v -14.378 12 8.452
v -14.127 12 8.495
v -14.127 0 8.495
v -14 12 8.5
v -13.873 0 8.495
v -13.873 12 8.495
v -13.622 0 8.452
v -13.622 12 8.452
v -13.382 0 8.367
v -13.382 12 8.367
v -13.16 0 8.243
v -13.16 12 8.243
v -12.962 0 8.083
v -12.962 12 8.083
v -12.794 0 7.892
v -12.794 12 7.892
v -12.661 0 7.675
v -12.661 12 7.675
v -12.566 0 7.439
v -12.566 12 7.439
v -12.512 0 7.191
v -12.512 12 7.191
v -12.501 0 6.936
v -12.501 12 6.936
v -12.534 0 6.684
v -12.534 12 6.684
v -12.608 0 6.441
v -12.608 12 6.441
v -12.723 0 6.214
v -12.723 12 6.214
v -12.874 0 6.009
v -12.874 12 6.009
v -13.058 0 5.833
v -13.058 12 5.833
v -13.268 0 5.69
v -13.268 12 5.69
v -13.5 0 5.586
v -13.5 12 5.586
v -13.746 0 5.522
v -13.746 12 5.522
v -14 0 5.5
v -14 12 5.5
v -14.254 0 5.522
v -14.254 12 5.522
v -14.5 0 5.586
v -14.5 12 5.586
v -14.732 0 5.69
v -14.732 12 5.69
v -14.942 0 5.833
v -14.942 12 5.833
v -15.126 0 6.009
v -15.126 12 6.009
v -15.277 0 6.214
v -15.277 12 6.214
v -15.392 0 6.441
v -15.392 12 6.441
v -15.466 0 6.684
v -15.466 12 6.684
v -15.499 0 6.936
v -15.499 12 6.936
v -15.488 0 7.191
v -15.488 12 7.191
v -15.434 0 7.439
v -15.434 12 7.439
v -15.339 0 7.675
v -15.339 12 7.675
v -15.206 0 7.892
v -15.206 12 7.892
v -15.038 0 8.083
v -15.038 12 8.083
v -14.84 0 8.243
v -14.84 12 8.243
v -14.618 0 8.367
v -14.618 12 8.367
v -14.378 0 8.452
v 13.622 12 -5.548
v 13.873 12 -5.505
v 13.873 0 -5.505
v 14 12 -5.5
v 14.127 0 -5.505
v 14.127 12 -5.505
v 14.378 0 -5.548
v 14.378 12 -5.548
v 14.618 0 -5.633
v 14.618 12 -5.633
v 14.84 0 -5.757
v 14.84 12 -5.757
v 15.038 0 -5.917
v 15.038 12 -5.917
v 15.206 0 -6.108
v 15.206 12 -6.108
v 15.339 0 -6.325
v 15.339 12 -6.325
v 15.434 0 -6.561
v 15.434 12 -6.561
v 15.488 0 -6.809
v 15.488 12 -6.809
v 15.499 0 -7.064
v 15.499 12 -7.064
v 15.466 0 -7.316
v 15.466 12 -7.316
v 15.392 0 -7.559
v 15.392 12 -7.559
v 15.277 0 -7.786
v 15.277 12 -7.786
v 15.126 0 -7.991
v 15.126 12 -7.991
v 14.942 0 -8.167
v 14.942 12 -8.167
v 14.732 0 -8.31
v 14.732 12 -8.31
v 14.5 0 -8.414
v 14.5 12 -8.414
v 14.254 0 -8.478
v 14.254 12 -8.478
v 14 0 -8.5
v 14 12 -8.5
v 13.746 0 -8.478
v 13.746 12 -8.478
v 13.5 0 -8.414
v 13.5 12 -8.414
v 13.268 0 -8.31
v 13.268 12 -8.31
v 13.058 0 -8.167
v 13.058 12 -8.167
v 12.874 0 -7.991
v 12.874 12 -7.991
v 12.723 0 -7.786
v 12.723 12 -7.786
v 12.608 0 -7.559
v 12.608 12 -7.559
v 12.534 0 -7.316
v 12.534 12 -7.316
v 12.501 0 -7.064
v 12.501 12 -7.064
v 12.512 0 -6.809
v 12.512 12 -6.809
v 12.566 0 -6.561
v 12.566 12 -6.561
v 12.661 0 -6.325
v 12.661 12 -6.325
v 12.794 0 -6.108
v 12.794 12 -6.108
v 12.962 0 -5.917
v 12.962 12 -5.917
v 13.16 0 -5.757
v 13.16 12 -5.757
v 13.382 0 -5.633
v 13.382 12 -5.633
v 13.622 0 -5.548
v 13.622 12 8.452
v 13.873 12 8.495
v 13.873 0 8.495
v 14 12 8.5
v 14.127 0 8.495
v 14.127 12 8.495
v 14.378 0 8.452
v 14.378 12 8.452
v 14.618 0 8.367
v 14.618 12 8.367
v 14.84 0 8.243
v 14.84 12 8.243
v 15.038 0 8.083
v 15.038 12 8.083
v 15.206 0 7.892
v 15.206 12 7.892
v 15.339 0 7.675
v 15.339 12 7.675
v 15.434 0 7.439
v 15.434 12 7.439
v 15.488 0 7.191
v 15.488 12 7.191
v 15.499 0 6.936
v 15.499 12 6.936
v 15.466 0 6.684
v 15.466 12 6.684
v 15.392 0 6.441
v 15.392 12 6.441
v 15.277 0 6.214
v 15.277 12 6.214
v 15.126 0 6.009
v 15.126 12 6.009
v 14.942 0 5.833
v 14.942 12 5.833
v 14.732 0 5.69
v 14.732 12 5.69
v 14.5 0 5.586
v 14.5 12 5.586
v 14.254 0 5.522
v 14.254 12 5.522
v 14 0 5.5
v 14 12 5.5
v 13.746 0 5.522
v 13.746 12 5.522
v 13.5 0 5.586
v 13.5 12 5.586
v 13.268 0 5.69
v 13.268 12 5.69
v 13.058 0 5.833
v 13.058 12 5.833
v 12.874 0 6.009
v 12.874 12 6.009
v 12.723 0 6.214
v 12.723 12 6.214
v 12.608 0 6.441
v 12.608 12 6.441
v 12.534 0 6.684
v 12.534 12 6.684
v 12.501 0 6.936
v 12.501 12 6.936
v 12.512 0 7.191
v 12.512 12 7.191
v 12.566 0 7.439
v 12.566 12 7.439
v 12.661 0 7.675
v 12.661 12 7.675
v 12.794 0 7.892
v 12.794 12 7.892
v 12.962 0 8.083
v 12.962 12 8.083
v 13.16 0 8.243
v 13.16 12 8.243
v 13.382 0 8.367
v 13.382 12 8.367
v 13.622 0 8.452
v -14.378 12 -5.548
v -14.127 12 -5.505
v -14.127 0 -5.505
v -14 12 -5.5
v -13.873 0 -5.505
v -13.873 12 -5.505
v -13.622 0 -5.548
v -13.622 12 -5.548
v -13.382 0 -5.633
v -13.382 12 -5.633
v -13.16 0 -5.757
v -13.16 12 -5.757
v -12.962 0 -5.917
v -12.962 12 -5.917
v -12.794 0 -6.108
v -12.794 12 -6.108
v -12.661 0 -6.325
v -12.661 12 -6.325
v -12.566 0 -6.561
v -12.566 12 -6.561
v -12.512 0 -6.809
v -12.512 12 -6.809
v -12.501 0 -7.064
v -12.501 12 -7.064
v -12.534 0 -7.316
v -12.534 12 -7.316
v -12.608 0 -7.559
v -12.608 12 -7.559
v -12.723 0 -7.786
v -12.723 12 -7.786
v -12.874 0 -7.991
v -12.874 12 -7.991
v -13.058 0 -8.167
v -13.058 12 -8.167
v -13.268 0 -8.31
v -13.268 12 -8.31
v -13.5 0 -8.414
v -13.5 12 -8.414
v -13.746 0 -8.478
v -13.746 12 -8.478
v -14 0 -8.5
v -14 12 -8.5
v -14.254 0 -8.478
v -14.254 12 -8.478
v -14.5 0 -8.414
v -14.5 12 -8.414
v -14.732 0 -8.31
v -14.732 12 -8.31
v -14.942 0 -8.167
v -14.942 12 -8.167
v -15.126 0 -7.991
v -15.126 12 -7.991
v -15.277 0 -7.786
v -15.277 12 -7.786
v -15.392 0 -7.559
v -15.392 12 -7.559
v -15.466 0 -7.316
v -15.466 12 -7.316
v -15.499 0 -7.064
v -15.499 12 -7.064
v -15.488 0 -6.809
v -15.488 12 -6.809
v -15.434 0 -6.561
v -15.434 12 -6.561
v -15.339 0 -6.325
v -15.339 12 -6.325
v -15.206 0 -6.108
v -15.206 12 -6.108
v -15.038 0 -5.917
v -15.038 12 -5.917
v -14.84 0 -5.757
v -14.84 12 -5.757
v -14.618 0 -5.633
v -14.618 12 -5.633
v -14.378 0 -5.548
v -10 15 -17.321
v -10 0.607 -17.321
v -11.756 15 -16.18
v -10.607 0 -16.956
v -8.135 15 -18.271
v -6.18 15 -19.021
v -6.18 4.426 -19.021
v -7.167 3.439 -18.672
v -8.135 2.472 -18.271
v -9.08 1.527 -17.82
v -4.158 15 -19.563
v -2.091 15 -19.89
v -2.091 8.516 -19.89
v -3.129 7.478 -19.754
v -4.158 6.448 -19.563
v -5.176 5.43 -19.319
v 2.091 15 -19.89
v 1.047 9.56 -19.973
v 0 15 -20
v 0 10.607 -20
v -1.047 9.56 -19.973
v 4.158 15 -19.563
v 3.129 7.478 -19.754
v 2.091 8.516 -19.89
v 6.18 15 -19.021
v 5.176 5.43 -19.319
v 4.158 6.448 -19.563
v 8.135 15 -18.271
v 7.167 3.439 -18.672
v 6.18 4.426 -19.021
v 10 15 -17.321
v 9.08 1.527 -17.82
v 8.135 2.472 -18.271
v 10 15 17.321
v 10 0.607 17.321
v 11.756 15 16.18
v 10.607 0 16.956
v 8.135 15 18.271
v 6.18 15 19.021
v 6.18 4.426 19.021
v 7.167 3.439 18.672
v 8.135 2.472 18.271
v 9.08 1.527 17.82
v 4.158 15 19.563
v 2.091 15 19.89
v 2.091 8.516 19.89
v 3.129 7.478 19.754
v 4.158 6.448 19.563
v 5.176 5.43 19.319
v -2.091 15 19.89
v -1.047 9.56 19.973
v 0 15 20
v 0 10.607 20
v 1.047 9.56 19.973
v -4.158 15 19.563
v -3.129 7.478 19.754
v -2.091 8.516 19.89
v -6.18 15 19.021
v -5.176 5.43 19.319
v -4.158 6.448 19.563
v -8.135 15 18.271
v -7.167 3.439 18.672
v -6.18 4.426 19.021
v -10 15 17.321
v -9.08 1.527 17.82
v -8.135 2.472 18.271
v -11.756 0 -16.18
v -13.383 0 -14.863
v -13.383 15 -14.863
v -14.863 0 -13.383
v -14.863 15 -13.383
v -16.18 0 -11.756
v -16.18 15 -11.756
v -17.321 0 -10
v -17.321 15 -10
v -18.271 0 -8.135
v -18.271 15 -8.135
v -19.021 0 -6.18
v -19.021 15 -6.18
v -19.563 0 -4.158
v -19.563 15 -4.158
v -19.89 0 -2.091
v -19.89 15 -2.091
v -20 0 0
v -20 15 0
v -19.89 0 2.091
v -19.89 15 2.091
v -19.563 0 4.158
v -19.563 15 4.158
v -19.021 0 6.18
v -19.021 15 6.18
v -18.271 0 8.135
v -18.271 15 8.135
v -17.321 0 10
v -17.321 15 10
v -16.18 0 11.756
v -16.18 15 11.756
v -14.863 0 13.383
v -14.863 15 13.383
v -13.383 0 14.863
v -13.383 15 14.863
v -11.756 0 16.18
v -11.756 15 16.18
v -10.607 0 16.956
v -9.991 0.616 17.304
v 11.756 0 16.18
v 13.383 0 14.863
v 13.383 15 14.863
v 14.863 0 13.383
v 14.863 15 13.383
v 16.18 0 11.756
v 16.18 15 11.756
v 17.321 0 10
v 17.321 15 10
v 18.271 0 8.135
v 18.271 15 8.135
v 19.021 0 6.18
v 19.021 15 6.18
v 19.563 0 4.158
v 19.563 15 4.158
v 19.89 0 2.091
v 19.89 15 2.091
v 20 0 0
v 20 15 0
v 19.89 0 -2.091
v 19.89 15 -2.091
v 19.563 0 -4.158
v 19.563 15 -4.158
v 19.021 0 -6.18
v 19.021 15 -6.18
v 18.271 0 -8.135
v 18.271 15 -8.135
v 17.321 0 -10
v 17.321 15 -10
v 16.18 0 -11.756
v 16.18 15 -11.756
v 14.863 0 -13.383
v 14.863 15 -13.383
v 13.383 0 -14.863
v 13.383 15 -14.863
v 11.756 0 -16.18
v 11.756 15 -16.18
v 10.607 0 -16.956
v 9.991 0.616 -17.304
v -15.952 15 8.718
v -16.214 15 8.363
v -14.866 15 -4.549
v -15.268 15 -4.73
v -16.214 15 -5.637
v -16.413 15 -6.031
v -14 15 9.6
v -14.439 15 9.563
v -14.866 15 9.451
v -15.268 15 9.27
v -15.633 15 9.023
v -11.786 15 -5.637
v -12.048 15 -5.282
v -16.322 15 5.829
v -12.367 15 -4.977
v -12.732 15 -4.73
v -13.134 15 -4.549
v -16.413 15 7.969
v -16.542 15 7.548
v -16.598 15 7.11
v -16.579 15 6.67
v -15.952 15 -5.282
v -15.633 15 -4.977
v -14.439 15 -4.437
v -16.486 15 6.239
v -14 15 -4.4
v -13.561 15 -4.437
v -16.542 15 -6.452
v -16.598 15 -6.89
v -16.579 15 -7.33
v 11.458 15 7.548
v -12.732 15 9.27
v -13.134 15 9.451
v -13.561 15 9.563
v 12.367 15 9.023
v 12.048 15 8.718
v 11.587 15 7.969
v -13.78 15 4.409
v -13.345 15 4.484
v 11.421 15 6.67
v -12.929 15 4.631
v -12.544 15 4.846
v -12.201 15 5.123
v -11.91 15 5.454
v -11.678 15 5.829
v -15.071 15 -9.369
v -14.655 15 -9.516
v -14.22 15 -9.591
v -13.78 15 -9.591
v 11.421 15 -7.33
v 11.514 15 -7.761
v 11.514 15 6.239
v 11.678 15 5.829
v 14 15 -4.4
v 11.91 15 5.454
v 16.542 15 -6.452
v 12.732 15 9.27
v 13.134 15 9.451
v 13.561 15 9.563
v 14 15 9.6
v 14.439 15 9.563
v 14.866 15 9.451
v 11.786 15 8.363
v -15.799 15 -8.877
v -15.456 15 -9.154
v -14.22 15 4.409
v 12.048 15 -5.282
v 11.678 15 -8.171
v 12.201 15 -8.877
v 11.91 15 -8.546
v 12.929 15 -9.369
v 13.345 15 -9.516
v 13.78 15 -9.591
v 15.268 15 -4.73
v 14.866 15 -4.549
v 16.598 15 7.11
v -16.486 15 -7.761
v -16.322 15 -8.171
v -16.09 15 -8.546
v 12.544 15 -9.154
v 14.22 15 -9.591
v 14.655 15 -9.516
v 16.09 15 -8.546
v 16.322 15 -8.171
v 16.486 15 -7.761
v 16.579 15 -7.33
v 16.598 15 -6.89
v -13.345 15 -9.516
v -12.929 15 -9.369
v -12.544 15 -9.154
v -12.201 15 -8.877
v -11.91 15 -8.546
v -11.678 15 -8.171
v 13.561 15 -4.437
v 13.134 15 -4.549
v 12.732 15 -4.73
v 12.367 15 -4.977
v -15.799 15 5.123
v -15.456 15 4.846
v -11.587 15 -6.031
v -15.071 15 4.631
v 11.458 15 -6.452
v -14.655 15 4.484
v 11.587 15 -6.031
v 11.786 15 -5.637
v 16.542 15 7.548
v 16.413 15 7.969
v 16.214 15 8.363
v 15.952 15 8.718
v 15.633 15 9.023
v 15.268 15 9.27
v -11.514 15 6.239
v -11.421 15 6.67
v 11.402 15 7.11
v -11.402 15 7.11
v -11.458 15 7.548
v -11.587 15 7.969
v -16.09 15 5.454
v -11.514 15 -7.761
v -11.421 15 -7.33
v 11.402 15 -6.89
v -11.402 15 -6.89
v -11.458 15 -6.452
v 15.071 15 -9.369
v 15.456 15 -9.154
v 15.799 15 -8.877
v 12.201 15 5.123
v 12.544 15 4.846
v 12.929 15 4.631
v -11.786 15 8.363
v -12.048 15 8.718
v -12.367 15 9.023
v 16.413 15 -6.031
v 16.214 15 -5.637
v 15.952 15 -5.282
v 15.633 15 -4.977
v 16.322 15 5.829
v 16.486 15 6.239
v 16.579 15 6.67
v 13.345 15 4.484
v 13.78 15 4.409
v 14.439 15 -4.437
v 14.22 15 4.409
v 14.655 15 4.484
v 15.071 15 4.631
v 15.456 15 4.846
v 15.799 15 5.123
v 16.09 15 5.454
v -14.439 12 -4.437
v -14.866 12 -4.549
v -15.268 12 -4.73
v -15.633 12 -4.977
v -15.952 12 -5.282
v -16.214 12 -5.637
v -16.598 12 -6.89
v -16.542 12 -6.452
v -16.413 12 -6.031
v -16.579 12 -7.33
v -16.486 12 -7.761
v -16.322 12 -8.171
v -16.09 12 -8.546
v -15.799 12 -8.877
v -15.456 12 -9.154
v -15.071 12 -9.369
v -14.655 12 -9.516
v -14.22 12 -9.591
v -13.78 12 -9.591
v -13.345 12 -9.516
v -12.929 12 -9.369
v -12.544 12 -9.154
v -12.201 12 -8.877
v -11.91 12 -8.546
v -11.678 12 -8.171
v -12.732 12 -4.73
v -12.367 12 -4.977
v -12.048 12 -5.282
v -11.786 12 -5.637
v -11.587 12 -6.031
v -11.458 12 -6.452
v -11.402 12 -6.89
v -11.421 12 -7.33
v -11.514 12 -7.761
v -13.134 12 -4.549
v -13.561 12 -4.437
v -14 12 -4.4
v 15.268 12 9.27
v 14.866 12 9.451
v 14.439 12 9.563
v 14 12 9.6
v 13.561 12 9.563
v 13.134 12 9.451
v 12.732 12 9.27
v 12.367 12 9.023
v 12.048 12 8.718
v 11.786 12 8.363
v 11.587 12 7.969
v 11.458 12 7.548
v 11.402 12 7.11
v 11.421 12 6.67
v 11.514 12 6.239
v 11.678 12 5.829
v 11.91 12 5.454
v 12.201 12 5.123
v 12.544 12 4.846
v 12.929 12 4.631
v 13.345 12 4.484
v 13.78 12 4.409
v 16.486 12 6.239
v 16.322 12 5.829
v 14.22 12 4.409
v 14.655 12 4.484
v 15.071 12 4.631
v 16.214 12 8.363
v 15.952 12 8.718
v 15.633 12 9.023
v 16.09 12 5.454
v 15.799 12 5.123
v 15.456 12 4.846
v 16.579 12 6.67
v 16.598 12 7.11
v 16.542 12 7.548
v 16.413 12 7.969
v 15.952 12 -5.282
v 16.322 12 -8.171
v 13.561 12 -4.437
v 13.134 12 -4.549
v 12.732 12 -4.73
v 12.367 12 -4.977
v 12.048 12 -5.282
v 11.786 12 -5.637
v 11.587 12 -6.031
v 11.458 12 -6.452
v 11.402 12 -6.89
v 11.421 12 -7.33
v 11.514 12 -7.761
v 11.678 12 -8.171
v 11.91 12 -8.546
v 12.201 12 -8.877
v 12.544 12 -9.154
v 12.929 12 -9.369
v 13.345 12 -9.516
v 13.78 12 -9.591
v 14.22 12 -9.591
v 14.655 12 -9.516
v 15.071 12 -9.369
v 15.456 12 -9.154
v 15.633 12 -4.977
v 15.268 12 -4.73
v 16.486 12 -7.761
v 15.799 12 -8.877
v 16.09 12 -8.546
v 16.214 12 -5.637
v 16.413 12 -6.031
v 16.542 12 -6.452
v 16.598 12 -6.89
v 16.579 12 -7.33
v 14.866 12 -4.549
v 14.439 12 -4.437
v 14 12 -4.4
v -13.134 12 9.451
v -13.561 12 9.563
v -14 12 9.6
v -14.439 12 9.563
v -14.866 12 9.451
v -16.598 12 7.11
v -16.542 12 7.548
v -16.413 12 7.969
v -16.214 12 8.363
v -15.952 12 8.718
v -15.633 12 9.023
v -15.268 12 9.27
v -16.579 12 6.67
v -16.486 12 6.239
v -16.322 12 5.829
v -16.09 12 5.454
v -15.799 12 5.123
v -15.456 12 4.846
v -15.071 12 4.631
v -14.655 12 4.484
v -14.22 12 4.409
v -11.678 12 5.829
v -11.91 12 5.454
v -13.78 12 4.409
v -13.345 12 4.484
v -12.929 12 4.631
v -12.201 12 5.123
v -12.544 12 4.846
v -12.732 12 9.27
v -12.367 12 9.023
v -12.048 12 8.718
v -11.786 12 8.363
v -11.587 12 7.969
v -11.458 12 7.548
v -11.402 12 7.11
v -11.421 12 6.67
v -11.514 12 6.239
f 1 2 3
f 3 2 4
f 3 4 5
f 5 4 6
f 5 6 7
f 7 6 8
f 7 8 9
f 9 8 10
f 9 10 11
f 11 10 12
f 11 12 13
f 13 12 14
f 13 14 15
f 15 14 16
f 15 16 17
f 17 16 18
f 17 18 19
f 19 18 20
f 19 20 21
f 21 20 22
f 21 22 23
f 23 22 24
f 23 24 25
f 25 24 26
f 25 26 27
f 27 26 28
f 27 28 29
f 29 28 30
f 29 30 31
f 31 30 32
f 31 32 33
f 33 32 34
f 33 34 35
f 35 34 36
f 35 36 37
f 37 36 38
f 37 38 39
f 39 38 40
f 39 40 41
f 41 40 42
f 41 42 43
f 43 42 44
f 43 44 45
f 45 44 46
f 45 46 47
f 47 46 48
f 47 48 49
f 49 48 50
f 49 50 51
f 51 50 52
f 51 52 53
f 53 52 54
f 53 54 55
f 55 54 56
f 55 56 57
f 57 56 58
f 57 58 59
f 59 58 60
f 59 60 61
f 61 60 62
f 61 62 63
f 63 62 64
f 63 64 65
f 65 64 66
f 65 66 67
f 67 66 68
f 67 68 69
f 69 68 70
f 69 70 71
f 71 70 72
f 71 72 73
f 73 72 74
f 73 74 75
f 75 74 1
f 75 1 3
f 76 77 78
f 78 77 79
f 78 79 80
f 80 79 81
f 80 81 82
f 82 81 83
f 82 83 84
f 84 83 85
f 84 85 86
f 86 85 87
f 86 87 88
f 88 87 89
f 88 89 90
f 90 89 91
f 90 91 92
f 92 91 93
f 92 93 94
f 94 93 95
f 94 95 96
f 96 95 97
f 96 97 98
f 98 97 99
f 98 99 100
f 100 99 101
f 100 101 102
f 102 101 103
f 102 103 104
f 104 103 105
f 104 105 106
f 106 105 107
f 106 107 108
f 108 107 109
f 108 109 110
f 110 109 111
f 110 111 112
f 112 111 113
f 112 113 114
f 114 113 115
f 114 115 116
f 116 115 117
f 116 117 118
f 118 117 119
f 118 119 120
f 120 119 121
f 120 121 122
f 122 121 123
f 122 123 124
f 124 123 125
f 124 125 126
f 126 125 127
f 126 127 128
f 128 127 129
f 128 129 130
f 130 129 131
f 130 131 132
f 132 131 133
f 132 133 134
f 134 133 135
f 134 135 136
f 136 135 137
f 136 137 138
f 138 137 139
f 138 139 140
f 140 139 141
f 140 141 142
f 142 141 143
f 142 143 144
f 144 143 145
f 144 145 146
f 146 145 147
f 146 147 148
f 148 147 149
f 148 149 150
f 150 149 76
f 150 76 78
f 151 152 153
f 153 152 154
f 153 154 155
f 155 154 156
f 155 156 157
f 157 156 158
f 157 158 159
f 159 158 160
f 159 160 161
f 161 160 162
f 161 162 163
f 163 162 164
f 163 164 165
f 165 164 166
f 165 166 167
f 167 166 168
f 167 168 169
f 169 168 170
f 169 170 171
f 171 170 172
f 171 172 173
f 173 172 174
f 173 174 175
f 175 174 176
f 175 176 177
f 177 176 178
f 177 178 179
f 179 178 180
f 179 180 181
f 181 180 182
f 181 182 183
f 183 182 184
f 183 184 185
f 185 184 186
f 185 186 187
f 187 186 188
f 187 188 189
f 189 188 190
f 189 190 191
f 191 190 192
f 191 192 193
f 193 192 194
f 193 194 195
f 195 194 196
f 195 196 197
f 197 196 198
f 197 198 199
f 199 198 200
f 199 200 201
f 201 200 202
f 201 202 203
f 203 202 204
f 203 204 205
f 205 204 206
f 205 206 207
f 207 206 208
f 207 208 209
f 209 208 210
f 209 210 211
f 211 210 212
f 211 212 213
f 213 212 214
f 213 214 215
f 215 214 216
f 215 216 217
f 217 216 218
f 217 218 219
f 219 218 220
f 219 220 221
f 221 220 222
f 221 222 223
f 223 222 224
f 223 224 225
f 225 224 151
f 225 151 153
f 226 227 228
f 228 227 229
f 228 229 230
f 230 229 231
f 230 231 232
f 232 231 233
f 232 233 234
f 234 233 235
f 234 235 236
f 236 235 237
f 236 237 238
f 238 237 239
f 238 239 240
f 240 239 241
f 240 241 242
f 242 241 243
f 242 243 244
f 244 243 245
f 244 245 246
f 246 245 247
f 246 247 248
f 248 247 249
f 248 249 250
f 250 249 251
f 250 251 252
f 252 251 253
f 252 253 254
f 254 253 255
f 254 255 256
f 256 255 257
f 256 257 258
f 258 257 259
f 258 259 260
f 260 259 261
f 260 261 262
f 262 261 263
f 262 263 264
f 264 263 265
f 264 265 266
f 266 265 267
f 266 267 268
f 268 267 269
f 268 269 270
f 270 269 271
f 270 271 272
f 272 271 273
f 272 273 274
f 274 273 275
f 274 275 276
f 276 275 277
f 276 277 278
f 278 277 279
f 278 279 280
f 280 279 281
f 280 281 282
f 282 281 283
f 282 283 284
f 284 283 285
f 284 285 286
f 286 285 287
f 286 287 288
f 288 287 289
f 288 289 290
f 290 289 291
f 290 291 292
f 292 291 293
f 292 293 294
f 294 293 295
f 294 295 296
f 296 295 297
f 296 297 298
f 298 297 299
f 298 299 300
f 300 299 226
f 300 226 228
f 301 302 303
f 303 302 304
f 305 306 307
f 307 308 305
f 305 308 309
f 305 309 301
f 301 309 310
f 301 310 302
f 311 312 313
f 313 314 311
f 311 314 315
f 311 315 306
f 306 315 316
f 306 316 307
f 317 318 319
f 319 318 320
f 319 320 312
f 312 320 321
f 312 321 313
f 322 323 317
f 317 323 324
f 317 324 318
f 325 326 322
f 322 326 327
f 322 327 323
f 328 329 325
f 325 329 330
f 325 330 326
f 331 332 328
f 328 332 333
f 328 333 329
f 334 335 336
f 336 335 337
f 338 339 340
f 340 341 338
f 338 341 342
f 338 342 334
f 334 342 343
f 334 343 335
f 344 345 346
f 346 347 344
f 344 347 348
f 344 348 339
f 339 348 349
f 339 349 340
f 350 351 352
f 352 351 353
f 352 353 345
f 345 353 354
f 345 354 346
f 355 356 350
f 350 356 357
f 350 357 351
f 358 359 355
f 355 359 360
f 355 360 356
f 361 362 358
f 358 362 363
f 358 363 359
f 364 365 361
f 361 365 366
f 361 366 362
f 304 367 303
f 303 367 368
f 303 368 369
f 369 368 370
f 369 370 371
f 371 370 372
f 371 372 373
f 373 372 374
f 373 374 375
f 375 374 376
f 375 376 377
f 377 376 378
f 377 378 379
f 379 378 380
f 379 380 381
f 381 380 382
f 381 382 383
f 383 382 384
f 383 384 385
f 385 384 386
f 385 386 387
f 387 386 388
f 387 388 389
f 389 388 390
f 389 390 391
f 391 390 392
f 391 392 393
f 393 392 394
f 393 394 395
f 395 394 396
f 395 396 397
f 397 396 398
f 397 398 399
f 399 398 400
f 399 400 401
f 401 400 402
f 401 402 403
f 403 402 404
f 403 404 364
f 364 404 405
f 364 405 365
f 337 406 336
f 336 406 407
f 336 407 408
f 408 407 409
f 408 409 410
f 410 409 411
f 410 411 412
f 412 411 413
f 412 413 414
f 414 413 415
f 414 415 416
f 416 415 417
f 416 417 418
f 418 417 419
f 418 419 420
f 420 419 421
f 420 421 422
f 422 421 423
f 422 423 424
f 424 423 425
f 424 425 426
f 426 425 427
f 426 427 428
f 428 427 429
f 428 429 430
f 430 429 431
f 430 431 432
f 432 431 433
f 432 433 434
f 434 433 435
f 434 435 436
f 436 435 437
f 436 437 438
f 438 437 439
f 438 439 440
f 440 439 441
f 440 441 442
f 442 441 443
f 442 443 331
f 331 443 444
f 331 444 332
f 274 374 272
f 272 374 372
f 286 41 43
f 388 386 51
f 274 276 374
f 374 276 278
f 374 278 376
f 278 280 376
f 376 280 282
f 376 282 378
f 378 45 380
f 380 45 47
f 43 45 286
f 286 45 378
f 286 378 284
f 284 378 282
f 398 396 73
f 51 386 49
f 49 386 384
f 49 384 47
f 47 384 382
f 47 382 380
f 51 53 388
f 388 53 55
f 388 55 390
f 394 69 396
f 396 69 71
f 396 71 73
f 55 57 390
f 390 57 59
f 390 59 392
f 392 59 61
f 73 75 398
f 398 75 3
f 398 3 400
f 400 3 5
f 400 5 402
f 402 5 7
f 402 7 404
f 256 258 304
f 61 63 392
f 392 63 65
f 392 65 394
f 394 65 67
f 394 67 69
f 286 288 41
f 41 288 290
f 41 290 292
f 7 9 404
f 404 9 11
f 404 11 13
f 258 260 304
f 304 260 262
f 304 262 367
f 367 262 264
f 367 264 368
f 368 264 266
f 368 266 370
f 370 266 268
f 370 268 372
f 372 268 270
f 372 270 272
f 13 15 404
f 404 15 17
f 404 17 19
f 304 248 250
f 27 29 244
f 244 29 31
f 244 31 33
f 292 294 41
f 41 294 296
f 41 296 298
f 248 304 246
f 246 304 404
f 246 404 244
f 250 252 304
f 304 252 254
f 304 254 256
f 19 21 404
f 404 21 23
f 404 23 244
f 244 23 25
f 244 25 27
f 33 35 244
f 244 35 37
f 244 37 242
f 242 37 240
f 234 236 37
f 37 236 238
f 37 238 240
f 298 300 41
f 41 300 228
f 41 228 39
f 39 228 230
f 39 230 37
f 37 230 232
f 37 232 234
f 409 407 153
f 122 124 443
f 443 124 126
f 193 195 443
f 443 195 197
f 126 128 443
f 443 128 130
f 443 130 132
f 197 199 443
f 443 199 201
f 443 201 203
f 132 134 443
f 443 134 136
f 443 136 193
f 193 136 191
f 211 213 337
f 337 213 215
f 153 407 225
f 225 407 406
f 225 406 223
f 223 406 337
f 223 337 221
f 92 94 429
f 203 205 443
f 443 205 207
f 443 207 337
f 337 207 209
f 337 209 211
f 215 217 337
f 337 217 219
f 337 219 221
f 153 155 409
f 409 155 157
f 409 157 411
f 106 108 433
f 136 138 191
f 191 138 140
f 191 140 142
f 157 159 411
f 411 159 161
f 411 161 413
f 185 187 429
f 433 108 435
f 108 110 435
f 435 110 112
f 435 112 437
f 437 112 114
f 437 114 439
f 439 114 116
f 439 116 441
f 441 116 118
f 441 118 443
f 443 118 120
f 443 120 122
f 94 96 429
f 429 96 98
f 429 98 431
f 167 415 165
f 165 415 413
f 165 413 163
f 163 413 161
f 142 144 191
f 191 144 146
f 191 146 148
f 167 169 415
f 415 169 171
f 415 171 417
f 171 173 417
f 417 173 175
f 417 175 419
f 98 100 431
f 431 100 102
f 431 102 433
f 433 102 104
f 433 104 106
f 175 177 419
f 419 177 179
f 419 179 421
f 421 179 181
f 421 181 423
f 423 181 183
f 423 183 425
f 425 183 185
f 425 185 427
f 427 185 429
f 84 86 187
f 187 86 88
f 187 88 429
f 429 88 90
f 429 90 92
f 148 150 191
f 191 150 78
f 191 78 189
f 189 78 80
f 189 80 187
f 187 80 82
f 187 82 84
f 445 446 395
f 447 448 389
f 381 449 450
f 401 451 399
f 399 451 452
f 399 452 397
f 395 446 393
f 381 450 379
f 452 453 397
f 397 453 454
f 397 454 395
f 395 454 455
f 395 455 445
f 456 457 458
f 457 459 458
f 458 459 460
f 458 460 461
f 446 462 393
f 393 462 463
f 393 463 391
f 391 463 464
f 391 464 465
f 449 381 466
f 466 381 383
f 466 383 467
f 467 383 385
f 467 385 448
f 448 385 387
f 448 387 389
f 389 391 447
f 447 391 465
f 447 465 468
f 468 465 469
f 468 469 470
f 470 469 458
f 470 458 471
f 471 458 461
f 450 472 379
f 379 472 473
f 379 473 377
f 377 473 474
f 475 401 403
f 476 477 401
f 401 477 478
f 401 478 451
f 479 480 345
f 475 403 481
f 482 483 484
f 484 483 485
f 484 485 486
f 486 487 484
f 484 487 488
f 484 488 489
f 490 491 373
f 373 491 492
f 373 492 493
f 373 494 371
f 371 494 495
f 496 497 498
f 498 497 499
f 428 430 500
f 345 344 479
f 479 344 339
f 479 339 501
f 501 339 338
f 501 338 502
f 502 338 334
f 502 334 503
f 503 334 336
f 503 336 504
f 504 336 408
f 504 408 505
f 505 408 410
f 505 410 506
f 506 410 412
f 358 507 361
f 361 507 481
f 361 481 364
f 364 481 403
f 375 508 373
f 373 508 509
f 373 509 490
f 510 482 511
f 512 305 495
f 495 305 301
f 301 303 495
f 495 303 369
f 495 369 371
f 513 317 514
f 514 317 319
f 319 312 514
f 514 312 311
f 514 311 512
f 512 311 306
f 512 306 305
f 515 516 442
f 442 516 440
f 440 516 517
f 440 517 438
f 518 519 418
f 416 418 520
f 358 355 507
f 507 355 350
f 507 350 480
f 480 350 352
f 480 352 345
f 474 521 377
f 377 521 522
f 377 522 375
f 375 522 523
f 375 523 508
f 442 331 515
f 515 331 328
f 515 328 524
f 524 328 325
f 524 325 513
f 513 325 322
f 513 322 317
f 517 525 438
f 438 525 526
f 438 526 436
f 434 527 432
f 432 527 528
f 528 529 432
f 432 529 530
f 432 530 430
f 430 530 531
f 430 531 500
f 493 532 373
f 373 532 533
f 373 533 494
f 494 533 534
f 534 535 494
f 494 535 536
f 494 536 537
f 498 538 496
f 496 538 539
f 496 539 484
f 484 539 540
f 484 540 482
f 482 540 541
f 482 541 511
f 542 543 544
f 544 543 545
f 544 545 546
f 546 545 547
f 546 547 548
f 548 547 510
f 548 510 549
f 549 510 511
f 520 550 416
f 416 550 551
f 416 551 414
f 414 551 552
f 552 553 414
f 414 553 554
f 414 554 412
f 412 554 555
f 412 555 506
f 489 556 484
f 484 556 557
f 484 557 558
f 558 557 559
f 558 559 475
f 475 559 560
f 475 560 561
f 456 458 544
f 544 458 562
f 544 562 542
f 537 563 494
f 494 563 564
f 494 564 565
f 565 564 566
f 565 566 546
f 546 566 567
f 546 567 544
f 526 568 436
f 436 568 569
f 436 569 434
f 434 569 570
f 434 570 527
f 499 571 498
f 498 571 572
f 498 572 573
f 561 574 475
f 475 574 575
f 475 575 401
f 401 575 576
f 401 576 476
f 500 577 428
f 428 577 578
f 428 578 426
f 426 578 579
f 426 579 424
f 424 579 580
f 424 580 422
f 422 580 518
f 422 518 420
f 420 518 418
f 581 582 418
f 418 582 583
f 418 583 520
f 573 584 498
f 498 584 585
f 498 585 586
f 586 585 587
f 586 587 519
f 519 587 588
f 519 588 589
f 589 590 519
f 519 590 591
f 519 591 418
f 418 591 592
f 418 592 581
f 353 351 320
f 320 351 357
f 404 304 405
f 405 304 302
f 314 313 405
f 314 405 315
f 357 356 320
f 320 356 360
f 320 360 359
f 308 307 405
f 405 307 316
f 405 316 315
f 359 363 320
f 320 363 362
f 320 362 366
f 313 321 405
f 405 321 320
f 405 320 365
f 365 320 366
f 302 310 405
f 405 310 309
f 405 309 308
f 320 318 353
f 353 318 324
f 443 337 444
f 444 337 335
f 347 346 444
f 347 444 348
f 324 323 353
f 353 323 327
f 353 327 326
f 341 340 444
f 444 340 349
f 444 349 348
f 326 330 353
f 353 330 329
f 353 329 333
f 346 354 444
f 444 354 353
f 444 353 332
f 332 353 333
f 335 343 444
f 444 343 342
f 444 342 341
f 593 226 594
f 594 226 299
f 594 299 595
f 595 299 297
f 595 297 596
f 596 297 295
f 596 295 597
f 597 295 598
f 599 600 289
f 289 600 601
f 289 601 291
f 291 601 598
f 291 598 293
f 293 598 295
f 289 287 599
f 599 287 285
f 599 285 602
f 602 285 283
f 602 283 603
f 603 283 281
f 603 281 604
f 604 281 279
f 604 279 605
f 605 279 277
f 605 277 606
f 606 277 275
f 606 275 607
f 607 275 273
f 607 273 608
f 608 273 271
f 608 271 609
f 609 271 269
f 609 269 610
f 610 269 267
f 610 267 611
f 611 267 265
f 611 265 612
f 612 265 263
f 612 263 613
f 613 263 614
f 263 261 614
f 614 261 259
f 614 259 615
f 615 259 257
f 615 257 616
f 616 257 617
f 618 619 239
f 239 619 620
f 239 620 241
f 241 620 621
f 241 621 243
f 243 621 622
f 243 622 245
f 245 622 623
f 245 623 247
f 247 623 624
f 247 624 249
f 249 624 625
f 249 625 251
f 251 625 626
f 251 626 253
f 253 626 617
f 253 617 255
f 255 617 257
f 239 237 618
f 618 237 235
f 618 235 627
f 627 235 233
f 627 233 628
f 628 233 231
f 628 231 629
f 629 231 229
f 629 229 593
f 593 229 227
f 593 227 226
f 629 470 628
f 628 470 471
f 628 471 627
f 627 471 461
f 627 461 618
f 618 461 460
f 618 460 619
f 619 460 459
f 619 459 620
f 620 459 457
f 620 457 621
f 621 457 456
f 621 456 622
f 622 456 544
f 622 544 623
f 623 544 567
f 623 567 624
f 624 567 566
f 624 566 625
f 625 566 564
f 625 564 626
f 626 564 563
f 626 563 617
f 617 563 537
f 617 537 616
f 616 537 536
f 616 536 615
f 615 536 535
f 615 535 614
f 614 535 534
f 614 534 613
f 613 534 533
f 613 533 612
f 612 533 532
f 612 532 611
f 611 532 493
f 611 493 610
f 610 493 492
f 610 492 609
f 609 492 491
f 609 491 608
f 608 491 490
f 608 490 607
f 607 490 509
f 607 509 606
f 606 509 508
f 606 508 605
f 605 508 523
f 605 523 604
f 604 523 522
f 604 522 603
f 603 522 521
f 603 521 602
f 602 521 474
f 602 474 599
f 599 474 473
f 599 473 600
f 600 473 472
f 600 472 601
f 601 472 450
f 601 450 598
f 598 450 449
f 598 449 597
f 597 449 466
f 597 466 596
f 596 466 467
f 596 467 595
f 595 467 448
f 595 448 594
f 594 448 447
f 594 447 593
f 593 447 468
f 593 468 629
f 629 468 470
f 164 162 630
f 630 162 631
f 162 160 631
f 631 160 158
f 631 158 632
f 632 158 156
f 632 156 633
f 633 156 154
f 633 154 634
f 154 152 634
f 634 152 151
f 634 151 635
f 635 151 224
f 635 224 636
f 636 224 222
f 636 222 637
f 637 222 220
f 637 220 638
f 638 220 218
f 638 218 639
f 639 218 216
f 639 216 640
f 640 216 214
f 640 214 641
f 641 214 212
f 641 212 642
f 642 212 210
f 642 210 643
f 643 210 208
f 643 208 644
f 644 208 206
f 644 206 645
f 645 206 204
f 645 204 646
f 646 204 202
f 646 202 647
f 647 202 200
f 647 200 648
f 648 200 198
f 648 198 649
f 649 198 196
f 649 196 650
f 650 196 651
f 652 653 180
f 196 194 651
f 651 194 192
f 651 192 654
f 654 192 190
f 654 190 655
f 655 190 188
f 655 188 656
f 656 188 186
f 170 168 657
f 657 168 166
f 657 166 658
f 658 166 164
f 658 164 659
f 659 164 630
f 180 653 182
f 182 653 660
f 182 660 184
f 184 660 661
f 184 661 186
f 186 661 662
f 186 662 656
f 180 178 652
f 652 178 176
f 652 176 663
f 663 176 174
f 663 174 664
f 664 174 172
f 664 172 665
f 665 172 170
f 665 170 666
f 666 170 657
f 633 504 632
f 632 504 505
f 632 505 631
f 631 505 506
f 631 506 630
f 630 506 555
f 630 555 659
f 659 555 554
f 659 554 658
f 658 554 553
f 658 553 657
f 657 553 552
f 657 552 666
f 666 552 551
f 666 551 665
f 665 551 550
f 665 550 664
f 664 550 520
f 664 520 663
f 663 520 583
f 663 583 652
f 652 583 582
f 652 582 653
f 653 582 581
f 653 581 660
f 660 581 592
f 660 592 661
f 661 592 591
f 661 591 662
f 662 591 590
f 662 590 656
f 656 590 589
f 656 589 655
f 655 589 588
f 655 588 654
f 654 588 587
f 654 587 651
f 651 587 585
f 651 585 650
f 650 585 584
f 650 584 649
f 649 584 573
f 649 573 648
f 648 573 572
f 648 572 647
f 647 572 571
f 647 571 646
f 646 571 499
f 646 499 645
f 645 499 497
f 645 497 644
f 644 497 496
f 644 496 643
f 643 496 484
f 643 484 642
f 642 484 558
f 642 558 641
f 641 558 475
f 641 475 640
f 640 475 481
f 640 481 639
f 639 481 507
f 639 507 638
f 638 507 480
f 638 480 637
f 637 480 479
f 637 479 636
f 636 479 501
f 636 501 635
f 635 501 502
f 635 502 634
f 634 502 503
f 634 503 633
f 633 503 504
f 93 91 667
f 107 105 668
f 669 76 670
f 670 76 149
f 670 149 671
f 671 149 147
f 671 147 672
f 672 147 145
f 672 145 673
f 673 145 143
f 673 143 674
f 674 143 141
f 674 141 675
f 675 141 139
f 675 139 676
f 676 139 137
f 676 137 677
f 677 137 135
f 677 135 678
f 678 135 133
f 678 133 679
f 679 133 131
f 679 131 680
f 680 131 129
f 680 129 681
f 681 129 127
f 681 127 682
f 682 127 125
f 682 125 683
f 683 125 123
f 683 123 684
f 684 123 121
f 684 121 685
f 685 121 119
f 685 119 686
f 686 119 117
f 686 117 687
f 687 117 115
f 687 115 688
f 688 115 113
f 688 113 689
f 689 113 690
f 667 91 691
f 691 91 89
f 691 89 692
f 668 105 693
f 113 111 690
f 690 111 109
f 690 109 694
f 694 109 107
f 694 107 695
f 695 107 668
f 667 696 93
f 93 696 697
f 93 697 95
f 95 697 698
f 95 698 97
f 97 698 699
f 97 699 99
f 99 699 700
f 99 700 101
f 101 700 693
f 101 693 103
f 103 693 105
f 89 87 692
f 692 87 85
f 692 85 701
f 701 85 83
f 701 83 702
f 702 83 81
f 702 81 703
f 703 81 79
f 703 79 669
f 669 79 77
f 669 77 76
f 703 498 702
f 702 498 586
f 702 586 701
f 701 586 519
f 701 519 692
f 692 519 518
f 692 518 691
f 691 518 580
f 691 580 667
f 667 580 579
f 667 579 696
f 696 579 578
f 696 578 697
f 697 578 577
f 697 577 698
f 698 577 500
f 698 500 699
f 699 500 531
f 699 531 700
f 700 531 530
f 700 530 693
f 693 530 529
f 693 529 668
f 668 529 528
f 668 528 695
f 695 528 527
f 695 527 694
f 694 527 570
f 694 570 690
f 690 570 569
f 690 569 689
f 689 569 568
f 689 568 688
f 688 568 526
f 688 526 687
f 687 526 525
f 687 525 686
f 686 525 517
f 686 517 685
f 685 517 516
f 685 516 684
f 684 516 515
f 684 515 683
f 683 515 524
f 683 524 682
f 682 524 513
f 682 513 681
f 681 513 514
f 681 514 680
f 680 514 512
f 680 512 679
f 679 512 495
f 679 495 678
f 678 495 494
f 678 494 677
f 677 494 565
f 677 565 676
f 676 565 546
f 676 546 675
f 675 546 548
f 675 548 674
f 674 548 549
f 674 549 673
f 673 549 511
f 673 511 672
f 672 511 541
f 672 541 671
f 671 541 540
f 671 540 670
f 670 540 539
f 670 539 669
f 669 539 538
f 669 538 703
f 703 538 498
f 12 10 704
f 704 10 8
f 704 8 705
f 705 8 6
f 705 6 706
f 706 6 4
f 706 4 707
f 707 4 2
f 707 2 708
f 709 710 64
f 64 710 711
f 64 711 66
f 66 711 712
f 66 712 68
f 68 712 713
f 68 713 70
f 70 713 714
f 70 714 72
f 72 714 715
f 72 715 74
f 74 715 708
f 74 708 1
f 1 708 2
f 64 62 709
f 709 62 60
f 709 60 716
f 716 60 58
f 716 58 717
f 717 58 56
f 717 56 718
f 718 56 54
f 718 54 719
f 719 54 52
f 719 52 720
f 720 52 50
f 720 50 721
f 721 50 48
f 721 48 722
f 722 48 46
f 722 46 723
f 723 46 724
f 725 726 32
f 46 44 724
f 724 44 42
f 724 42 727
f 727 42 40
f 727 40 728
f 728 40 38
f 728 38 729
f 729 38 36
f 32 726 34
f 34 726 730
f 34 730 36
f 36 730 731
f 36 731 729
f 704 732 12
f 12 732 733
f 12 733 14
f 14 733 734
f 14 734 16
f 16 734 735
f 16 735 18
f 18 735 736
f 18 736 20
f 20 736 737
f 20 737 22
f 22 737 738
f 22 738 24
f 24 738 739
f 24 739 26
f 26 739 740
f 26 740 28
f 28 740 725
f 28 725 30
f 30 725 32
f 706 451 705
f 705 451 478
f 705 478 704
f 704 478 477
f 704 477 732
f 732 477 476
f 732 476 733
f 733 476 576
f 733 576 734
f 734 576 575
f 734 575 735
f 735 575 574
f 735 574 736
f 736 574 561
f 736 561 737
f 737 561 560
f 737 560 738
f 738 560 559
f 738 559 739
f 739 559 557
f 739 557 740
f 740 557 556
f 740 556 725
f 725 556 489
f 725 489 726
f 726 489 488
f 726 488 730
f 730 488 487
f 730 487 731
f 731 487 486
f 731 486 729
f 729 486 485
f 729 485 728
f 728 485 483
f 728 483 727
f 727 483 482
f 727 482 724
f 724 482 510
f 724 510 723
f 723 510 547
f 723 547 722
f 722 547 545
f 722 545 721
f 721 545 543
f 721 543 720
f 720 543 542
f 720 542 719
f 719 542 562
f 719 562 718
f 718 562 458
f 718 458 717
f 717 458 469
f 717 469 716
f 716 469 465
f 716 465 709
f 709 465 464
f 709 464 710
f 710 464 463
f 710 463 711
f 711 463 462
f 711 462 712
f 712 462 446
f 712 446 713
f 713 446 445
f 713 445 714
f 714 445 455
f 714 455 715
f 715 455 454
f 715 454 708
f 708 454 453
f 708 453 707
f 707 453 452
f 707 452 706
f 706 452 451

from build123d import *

# Parameters (mm, degrees)
SKETCH1_R               = 20
BOSS_EXTRUDE1_DEPTH     = 15
CUT_EXTRUDE1_DEPTH      = 25
CUT_EXTRUDE1_DEPTH_BACK = 25
CUT_EXTRUDE2_REACH      = 34.016
SKETCH3_R               = 1.5
SKETCH4_R               = 2.6
CUT_EXTRUDE3_DEPTH      = 3


with BuildPart() as part:
    # Sketch1 → Boss-Extrude1 (new body)
    with BuildSketch(Plane(origin=(0, 0, 0), x_dir=(1, 0, 0), z_dir=(0, 1, 0))):
        Circle(SKETCH1_R)
    extrude(amount=BOSS_EXTRUDE1_DEPTH)

    # Sketch2 → Cut-Extrude1 (cut, two sides: drawn at the far end of the back side and taken through both)
    with BuildSketch(Plane.XY.offset(-CUT_EXTRUDE1_DEPTH_BACK)):
        Polygon((-10.606601718, 0), (10.606601718, 0), (0, 10.606601718), align=None)
    extrude(amount=CUT_EXTRUDE1_DEPTH + CUT_EXTRUDE1_DEPTH_BACK, mode=Mode.SUBTRACT)

    # Sketch3 → Cut-Extrude2 (cut, up to next)
    with BuildSketch(Plane(origin=(0, 0, 0), x_dir=(-1, 0, 0), z_dir=(0, -1, 0)), mode=Mode.PRIVATE) as cut_extrude2_sk1:
        with Locations((14, -7)):
            Circle(SKETCH3_R)
    cut_extrude2_tool1 = extrude(cut_extrude2_sk1.sketch, amount=-CUT_EXTRUDE2_REACH, mode=Mode.PRIVATE) & part.part
    # Sketch3 → Cut-Extrude2 (cut, up to next)
    with BuildSketch(Plane(origin=(0, 0, 0), x_dir=(-1, 0, 0), z_dir=(0, -1, 0)), mode=Mode.PRIVATE) as cut_extrude2_sk2:
        with Locations((14, 7)):
            Circle(SKETCH3_R)
    cut_extrude2_tool2 = extrude(cut_extrude2_sk2.sketch, amount=-CUT_EXTRUDE2_REACH, mode=Mode.PRIVATE) & part.part
    # Sketch3 → Cut-Extrude2 (cut, up to next)
    with BuildSketch(Plane(origin=(0, 0, 0), x_dir=(-1, 0, 0), z_dir=(0, -1, 0)), mode=Mode.PRIVATE) as cut_extrude2_sk3:
        with Locations((-14, -7)):
            Circle(SKETCH3_R)
    cut_extrude2_tool3 = extrude(cut_extrude2_sk3.sketch, amount=-CUT_EXTRUDE2_REACH, mode=Mode.PRIVATE) & part.part
    # Sketch3 → Cut-Extrude2 (cut, up to next)
    with BuildSketch(Plane(origin=(0, 0, 0), x_dir=(-1, 0, 0), z_dir=(0, -1, 0)), mode=Mode.PRIVATE) as cut_extrude2_sk4:
        with Locations((-14, 7)):
            Circle(SKETCH3_R)
    cut_extrude2_tool4 = extrude(cut_extrude2_sk4.sketch, amount=-CUT_EXTRUDE2_REACH, mode=Mode.PRIVATE) & part.part
    add(cut_extrude2_tool1.solids().sort_by_distance((-14, 0, 7))[0], mode=Mode.SUBTRACT)
    add(cut_extrude2_tool2.solids().sort_by_distance((-14, 0, -7))[0], mode=Mode.SUBTRACT)
    add(cut_extrude2_tool3.solids().sort_by_distance((14, 0, 7))[0], mode=Mode.SUBTRACT)
    add(cut_extrude2_tool4.solids().sort_by_distance((14, 0, -7))[0], mode=Mode.SUBTRACT)

    # Sketch4 → Cut-Extrude3 (cut)
    with BuildSketch(Plane(origin=(0, 15, 0), x_dir=(1, 0, 0), z_dir=(0, 1, 0))):
        with Locations((-14, 7)):
            Circle(SKETCH4_R)
        with Locations((-14, -7)):
            Circle(SKETCH4_R)
        with Locations((14, 7)):
            Circle(SKETCH4_R)
        with Locations((14, -7)):
            Circle(SKETCH4_R)
    extrude(amount=-CUT_EXTRUDE3_DEPTH, mode=Mode.SUBTRACT)


solid = part.part
